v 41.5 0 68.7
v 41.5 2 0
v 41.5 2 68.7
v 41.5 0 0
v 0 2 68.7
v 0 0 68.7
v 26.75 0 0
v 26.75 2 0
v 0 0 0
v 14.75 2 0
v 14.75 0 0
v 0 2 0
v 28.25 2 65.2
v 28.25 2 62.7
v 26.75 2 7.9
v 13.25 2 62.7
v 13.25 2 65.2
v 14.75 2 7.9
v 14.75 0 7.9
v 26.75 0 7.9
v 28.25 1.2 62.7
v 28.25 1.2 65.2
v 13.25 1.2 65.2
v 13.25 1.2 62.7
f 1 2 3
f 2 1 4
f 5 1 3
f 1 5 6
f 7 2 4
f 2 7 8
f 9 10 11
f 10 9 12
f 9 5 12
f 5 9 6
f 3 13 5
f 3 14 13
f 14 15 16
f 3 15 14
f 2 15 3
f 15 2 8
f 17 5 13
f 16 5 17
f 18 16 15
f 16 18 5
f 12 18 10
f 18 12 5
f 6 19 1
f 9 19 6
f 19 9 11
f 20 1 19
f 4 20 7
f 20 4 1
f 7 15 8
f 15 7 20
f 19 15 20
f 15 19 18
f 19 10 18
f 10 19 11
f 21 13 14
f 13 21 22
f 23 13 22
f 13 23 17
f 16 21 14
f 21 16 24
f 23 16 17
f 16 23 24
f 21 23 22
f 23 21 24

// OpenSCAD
// =================================================================
// PART 2: Slide-in Rear Door Panel
// Units: Millimeters (mm)
// =================================================================

body_w = 44.0;
body_h = 76.0;
wall   = 2.2;
floor_t= 2.0;
base_h1 = 2.5;
base_h2 = 2.5;

usb_w = 12.0;
usb_h = 8.0;

module slide_in_back_door() {
    door_w = body_w - 2 * wall + 2 * 1.2 - 0.5;
    door_h = body_h - (floor_t + base_h1 + base_h2) - 0.3;

    difference() {
        union() {
            cube([door_w, 2.0, door_h]);
            cube([0.9, 1.1, door_h]);
            translate([door_w - 0.9, 0, 0])
                cube([0.9, 1.1, door_h]);
        }

        translate([(door_w / 2) - (usb_w / 2), -1, -0.1])
            cube([usb_w, 6.0, usb_h]);

        translate([(door_w / 2) - 7.5, 1.2, door_h - 6.0])
            cube([15.0, 1.5, 2.5]);
    }
}

// Render Door flat for printing
slide_in_back_door();
